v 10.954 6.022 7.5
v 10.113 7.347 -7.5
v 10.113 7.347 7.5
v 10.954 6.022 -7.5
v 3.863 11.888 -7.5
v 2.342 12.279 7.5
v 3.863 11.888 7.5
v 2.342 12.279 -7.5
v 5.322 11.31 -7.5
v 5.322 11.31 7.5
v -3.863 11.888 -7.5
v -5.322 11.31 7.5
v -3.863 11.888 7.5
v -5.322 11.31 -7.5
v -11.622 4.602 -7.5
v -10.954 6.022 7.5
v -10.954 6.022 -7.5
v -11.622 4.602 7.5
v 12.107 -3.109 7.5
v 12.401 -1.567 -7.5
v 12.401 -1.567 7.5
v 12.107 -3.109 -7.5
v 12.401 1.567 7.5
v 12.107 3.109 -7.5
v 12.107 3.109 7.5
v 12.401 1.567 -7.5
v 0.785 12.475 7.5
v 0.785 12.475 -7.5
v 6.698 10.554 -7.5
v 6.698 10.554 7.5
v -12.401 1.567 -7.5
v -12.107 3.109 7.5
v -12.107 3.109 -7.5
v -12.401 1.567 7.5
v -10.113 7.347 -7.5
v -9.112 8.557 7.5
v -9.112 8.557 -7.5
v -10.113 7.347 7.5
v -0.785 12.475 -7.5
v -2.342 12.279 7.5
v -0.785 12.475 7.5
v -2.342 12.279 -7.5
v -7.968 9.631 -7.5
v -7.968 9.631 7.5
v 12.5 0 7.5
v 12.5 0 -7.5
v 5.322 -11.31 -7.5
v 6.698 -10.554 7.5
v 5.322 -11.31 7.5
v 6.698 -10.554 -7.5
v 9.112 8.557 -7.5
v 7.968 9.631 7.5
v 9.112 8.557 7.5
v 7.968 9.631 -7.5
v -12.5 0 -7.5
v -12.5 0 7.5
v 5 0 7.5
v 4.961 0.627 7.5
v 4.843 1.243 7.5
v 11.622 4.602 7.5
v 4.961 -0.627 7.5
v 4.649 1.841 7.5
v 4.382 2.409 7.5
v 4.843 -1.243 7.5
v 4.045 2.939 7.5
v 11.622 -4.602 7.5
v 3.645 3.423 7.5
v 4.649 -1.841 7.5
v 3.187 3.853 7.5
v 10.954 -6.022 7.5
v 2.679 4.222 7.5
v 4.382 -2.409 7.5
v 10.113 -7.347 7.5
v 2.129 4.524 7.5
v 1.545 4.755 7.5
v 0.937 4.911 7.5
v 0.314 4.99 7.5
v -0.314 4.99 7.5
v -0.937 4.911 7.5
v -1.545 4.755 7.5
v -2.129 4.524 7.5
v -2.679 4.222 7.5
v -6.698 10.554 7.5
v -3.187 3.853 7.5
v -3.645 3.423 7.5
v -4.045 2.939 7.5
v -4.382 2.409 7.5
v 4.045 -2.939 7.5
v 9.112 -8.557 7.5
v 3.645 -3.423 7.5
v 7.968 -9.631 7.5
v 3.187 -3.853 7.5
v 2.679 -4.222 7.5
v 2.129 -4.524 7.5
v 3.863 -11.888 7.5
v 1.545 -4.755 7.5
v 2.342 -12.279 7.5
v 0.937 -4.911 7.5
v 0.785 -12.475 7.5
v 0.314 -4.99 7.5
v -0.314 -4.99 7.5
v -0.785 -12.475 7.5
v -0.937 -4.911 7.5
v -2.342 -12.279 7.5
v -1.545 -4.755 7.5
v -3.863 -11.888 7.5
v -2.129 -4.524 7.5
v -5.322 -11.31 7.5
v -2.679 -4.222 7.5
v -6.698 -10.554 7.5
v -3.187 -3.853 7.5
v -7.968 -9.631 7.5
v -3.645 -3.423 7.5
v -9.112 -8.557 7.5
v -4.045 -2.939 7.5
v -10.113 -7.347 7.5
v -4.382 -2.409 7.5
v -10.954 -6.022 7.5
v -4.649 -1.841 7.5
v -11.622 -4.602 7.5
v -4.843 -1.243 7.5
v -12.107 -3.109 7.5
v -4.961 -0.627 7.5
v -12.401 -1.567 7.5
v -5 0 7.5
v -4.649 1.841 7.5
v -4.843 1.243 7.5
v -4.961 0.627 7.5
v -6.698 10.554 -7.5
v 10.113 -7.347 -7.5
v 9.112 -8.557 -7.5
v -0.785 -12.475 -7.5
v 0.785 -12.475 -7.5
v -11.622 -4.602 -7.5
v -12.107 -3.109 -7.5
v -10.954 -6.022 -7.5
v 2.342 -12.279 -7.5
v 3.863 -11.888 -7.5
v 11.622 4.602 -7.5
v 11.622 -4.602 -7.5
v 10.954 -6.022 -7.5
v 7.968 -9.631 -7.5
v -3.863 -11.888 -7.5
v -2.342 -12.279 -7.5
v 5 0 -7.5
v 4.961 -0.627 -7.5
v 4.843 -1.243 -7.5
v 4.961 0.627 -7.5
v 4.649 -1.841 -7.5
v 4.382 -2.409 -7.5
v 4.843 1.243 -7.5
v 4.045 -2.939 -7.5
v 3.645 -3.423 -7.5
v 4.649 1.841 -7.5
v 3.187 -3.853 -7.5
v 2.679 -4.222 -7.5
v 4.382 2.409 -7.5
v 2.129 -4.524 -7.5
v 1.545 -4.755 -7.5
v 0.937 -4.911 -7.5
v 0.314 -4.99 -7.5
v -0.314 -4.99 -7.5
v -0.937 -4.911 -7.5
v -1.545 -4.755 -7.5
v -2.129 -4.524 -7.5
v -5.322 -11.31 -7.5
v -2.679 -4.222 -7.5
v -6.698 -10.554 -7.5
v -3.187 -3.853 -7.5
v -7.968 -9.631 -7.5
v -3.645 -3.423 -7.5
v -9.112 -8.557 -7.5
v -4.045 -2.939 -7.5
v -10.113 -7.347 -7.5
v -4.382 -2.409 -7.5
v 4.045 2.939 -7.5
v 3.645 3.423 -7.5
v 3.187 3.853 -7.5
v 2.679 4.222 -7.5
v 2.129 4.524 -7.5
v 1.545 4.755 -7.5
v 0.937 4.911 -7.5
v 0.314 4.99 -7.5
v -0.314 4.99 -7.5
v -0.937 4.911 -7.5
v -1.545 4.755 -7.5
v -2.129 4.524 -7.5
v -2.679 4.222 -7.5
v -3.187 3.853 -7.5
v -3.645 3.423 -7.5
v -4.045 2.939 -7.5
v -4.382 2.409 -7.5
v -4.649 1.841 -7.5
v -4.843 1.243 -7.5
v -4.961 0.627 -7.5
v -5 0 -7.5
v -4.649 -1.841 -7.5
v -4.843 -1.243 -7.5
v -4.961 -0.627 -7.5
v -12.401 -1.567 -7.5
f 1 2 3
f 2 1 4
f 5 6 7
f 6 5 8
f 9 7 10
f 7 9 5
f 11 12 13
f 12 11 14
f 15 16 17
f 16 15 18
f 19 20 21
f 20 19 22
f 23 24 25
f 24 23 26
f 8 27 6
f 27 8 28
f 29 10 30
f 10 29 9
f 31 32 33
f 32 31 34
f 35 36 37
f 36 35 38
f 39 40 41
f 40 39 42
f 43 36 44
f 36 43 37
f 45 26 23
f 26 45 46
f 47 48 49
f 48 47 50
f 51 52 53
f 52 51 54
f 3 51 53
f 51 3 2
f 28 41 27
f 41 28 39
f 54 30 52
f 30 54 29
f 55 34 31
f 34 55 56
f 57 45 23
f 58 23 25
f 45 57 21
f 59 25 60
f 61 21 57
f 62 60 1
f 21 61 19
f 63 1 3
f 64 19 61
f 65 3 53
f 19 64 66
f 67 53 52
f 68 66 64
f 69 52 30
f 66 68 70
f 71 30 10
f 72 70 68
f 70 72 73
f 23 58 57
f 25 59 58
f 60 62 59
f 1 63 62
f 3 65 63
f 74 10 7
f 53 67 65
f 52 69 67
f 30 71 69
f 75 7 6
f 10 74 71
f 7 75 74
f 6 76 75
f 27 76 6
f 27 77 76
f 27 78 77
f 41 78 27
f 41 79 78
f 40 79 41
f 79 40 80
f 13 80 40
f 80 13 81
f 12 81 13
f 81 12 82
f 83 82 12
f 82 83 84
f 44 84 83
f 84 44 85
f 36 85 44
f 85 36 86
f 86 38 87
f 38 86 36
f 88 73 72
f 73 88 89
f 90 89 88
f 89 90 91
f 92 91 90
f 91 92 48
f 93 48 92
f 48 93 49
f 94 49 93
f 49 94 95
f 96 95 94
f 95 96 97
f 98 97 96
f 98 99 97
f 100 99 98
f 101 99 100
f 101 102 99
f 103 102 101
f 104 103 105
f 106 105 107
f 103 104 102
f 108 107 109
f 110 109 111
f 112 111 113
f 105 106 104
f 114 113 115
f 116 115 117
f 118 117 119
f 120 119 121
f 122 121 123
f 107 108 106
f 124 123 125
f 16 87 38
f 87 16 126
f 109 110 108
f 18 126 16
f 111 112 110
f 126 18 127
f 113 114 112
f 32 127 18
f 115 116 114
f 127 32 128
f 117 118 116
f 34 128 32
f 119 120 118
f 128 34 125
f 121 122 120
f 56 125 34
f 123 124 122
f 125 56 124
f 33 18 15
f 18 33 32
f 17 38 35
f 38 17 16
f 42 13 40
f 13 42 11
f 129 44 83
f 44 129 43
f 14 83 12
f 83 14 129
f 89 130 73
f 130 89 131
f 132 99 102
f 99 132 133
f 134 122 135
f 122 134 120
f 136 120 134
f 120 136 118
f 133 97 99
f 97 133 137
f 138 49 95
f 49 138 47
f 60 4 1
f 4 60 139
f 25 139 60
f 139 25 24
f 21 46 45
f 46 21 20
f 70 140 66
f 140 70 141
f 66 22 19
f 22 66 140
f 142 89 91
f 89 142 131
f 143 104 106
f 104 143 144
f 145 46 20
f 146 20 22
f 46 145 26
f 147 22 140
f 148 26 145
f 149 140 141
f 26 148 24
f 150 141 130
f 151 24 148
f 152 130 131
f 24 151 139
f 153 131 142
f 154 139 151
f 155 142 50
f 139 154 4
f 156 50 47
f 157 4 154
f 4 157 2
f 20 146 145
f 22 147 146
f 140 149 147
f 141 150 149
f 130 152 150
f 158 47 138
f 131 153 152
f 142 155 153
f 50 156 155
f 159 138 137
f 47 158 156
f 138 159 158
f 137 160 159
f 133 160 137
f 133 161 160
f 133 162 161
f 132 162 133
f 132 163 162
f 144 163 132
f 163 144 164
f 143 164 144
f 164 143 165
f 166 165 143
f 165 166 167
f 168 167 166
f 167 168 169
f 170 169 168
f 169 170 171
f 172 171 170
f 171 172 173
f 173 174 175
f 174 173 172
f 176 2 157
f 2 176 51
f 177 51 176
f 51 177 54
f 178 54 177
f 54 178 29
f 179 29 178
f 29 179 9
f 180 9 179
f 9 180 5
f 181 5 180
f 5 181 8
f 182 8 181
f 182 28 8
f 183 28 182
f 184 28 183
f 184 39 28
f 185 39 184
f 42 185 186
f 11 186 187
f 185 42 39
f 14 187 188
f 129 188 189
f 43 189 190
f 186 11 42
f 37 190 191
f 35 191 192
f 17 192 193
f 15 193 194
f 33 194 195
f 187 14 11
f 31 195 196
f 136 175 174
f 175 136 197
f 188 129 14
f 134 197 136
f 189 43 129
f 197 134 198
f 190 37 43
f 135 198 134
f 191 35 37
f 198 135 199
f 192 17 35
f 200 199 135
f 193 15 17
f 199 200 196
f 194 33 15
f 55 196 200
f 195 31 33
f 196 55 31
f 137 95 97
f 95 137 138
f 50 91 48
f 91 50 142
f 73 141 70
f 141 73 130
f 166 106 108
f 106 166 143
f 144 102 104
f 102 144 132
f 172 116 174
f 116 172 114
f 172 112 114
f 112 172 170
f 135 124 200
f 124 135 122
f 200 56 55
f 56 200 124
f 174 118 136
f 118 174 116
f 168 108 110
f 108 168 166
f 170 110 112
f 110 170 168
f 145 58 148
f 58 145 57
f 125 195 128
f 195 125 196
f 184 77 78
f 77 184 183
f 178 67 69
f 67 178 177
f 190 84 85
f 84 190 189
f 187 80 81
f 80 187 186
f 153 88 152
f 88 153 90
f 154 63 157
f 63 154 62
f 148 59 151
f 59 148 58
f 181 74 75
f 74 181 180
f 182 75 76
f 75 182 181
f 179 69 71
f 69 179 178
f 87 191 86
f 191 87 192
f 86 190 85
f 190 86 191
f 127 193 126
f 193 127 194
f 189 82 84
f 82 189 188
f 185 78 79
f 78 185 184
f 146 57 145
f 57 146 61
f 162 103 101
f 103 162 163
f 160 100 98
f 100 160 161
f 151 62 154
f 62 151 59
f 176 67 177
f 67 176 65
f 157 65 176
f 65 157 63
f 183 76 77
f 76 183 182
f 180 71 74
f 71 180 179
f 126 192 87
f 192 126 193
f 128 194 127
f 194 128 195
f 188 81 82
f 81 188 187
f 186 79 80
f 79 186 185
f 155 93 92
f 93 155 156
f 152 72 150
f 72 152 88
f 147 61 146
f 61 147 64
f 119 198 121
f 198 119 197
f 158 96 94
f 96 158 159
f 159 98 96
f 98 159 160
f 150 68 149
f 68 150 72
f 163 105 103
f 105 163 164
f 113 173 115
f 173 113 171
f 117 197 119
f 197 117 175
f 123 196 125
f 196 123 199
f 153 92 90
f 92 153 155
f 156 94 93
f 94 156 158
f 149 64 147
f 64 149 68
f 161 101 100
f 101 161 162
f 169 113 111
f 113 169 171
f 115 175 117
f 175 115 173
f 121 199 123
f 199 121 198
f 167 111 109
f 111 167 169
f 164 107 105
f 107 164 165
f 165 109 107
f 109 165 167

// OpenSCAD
$fn = 50;


difference() {
	union() {
		translate(v = [0, 0, -7.5000000000]) {
			cylinder(h = 15, r = 12.5000000000);
		}
	}
	union() {
		translate(v = [0, 0, -100.0000000000]) {
			cylinder(h = 200, r = 5);
		}
	}
}
